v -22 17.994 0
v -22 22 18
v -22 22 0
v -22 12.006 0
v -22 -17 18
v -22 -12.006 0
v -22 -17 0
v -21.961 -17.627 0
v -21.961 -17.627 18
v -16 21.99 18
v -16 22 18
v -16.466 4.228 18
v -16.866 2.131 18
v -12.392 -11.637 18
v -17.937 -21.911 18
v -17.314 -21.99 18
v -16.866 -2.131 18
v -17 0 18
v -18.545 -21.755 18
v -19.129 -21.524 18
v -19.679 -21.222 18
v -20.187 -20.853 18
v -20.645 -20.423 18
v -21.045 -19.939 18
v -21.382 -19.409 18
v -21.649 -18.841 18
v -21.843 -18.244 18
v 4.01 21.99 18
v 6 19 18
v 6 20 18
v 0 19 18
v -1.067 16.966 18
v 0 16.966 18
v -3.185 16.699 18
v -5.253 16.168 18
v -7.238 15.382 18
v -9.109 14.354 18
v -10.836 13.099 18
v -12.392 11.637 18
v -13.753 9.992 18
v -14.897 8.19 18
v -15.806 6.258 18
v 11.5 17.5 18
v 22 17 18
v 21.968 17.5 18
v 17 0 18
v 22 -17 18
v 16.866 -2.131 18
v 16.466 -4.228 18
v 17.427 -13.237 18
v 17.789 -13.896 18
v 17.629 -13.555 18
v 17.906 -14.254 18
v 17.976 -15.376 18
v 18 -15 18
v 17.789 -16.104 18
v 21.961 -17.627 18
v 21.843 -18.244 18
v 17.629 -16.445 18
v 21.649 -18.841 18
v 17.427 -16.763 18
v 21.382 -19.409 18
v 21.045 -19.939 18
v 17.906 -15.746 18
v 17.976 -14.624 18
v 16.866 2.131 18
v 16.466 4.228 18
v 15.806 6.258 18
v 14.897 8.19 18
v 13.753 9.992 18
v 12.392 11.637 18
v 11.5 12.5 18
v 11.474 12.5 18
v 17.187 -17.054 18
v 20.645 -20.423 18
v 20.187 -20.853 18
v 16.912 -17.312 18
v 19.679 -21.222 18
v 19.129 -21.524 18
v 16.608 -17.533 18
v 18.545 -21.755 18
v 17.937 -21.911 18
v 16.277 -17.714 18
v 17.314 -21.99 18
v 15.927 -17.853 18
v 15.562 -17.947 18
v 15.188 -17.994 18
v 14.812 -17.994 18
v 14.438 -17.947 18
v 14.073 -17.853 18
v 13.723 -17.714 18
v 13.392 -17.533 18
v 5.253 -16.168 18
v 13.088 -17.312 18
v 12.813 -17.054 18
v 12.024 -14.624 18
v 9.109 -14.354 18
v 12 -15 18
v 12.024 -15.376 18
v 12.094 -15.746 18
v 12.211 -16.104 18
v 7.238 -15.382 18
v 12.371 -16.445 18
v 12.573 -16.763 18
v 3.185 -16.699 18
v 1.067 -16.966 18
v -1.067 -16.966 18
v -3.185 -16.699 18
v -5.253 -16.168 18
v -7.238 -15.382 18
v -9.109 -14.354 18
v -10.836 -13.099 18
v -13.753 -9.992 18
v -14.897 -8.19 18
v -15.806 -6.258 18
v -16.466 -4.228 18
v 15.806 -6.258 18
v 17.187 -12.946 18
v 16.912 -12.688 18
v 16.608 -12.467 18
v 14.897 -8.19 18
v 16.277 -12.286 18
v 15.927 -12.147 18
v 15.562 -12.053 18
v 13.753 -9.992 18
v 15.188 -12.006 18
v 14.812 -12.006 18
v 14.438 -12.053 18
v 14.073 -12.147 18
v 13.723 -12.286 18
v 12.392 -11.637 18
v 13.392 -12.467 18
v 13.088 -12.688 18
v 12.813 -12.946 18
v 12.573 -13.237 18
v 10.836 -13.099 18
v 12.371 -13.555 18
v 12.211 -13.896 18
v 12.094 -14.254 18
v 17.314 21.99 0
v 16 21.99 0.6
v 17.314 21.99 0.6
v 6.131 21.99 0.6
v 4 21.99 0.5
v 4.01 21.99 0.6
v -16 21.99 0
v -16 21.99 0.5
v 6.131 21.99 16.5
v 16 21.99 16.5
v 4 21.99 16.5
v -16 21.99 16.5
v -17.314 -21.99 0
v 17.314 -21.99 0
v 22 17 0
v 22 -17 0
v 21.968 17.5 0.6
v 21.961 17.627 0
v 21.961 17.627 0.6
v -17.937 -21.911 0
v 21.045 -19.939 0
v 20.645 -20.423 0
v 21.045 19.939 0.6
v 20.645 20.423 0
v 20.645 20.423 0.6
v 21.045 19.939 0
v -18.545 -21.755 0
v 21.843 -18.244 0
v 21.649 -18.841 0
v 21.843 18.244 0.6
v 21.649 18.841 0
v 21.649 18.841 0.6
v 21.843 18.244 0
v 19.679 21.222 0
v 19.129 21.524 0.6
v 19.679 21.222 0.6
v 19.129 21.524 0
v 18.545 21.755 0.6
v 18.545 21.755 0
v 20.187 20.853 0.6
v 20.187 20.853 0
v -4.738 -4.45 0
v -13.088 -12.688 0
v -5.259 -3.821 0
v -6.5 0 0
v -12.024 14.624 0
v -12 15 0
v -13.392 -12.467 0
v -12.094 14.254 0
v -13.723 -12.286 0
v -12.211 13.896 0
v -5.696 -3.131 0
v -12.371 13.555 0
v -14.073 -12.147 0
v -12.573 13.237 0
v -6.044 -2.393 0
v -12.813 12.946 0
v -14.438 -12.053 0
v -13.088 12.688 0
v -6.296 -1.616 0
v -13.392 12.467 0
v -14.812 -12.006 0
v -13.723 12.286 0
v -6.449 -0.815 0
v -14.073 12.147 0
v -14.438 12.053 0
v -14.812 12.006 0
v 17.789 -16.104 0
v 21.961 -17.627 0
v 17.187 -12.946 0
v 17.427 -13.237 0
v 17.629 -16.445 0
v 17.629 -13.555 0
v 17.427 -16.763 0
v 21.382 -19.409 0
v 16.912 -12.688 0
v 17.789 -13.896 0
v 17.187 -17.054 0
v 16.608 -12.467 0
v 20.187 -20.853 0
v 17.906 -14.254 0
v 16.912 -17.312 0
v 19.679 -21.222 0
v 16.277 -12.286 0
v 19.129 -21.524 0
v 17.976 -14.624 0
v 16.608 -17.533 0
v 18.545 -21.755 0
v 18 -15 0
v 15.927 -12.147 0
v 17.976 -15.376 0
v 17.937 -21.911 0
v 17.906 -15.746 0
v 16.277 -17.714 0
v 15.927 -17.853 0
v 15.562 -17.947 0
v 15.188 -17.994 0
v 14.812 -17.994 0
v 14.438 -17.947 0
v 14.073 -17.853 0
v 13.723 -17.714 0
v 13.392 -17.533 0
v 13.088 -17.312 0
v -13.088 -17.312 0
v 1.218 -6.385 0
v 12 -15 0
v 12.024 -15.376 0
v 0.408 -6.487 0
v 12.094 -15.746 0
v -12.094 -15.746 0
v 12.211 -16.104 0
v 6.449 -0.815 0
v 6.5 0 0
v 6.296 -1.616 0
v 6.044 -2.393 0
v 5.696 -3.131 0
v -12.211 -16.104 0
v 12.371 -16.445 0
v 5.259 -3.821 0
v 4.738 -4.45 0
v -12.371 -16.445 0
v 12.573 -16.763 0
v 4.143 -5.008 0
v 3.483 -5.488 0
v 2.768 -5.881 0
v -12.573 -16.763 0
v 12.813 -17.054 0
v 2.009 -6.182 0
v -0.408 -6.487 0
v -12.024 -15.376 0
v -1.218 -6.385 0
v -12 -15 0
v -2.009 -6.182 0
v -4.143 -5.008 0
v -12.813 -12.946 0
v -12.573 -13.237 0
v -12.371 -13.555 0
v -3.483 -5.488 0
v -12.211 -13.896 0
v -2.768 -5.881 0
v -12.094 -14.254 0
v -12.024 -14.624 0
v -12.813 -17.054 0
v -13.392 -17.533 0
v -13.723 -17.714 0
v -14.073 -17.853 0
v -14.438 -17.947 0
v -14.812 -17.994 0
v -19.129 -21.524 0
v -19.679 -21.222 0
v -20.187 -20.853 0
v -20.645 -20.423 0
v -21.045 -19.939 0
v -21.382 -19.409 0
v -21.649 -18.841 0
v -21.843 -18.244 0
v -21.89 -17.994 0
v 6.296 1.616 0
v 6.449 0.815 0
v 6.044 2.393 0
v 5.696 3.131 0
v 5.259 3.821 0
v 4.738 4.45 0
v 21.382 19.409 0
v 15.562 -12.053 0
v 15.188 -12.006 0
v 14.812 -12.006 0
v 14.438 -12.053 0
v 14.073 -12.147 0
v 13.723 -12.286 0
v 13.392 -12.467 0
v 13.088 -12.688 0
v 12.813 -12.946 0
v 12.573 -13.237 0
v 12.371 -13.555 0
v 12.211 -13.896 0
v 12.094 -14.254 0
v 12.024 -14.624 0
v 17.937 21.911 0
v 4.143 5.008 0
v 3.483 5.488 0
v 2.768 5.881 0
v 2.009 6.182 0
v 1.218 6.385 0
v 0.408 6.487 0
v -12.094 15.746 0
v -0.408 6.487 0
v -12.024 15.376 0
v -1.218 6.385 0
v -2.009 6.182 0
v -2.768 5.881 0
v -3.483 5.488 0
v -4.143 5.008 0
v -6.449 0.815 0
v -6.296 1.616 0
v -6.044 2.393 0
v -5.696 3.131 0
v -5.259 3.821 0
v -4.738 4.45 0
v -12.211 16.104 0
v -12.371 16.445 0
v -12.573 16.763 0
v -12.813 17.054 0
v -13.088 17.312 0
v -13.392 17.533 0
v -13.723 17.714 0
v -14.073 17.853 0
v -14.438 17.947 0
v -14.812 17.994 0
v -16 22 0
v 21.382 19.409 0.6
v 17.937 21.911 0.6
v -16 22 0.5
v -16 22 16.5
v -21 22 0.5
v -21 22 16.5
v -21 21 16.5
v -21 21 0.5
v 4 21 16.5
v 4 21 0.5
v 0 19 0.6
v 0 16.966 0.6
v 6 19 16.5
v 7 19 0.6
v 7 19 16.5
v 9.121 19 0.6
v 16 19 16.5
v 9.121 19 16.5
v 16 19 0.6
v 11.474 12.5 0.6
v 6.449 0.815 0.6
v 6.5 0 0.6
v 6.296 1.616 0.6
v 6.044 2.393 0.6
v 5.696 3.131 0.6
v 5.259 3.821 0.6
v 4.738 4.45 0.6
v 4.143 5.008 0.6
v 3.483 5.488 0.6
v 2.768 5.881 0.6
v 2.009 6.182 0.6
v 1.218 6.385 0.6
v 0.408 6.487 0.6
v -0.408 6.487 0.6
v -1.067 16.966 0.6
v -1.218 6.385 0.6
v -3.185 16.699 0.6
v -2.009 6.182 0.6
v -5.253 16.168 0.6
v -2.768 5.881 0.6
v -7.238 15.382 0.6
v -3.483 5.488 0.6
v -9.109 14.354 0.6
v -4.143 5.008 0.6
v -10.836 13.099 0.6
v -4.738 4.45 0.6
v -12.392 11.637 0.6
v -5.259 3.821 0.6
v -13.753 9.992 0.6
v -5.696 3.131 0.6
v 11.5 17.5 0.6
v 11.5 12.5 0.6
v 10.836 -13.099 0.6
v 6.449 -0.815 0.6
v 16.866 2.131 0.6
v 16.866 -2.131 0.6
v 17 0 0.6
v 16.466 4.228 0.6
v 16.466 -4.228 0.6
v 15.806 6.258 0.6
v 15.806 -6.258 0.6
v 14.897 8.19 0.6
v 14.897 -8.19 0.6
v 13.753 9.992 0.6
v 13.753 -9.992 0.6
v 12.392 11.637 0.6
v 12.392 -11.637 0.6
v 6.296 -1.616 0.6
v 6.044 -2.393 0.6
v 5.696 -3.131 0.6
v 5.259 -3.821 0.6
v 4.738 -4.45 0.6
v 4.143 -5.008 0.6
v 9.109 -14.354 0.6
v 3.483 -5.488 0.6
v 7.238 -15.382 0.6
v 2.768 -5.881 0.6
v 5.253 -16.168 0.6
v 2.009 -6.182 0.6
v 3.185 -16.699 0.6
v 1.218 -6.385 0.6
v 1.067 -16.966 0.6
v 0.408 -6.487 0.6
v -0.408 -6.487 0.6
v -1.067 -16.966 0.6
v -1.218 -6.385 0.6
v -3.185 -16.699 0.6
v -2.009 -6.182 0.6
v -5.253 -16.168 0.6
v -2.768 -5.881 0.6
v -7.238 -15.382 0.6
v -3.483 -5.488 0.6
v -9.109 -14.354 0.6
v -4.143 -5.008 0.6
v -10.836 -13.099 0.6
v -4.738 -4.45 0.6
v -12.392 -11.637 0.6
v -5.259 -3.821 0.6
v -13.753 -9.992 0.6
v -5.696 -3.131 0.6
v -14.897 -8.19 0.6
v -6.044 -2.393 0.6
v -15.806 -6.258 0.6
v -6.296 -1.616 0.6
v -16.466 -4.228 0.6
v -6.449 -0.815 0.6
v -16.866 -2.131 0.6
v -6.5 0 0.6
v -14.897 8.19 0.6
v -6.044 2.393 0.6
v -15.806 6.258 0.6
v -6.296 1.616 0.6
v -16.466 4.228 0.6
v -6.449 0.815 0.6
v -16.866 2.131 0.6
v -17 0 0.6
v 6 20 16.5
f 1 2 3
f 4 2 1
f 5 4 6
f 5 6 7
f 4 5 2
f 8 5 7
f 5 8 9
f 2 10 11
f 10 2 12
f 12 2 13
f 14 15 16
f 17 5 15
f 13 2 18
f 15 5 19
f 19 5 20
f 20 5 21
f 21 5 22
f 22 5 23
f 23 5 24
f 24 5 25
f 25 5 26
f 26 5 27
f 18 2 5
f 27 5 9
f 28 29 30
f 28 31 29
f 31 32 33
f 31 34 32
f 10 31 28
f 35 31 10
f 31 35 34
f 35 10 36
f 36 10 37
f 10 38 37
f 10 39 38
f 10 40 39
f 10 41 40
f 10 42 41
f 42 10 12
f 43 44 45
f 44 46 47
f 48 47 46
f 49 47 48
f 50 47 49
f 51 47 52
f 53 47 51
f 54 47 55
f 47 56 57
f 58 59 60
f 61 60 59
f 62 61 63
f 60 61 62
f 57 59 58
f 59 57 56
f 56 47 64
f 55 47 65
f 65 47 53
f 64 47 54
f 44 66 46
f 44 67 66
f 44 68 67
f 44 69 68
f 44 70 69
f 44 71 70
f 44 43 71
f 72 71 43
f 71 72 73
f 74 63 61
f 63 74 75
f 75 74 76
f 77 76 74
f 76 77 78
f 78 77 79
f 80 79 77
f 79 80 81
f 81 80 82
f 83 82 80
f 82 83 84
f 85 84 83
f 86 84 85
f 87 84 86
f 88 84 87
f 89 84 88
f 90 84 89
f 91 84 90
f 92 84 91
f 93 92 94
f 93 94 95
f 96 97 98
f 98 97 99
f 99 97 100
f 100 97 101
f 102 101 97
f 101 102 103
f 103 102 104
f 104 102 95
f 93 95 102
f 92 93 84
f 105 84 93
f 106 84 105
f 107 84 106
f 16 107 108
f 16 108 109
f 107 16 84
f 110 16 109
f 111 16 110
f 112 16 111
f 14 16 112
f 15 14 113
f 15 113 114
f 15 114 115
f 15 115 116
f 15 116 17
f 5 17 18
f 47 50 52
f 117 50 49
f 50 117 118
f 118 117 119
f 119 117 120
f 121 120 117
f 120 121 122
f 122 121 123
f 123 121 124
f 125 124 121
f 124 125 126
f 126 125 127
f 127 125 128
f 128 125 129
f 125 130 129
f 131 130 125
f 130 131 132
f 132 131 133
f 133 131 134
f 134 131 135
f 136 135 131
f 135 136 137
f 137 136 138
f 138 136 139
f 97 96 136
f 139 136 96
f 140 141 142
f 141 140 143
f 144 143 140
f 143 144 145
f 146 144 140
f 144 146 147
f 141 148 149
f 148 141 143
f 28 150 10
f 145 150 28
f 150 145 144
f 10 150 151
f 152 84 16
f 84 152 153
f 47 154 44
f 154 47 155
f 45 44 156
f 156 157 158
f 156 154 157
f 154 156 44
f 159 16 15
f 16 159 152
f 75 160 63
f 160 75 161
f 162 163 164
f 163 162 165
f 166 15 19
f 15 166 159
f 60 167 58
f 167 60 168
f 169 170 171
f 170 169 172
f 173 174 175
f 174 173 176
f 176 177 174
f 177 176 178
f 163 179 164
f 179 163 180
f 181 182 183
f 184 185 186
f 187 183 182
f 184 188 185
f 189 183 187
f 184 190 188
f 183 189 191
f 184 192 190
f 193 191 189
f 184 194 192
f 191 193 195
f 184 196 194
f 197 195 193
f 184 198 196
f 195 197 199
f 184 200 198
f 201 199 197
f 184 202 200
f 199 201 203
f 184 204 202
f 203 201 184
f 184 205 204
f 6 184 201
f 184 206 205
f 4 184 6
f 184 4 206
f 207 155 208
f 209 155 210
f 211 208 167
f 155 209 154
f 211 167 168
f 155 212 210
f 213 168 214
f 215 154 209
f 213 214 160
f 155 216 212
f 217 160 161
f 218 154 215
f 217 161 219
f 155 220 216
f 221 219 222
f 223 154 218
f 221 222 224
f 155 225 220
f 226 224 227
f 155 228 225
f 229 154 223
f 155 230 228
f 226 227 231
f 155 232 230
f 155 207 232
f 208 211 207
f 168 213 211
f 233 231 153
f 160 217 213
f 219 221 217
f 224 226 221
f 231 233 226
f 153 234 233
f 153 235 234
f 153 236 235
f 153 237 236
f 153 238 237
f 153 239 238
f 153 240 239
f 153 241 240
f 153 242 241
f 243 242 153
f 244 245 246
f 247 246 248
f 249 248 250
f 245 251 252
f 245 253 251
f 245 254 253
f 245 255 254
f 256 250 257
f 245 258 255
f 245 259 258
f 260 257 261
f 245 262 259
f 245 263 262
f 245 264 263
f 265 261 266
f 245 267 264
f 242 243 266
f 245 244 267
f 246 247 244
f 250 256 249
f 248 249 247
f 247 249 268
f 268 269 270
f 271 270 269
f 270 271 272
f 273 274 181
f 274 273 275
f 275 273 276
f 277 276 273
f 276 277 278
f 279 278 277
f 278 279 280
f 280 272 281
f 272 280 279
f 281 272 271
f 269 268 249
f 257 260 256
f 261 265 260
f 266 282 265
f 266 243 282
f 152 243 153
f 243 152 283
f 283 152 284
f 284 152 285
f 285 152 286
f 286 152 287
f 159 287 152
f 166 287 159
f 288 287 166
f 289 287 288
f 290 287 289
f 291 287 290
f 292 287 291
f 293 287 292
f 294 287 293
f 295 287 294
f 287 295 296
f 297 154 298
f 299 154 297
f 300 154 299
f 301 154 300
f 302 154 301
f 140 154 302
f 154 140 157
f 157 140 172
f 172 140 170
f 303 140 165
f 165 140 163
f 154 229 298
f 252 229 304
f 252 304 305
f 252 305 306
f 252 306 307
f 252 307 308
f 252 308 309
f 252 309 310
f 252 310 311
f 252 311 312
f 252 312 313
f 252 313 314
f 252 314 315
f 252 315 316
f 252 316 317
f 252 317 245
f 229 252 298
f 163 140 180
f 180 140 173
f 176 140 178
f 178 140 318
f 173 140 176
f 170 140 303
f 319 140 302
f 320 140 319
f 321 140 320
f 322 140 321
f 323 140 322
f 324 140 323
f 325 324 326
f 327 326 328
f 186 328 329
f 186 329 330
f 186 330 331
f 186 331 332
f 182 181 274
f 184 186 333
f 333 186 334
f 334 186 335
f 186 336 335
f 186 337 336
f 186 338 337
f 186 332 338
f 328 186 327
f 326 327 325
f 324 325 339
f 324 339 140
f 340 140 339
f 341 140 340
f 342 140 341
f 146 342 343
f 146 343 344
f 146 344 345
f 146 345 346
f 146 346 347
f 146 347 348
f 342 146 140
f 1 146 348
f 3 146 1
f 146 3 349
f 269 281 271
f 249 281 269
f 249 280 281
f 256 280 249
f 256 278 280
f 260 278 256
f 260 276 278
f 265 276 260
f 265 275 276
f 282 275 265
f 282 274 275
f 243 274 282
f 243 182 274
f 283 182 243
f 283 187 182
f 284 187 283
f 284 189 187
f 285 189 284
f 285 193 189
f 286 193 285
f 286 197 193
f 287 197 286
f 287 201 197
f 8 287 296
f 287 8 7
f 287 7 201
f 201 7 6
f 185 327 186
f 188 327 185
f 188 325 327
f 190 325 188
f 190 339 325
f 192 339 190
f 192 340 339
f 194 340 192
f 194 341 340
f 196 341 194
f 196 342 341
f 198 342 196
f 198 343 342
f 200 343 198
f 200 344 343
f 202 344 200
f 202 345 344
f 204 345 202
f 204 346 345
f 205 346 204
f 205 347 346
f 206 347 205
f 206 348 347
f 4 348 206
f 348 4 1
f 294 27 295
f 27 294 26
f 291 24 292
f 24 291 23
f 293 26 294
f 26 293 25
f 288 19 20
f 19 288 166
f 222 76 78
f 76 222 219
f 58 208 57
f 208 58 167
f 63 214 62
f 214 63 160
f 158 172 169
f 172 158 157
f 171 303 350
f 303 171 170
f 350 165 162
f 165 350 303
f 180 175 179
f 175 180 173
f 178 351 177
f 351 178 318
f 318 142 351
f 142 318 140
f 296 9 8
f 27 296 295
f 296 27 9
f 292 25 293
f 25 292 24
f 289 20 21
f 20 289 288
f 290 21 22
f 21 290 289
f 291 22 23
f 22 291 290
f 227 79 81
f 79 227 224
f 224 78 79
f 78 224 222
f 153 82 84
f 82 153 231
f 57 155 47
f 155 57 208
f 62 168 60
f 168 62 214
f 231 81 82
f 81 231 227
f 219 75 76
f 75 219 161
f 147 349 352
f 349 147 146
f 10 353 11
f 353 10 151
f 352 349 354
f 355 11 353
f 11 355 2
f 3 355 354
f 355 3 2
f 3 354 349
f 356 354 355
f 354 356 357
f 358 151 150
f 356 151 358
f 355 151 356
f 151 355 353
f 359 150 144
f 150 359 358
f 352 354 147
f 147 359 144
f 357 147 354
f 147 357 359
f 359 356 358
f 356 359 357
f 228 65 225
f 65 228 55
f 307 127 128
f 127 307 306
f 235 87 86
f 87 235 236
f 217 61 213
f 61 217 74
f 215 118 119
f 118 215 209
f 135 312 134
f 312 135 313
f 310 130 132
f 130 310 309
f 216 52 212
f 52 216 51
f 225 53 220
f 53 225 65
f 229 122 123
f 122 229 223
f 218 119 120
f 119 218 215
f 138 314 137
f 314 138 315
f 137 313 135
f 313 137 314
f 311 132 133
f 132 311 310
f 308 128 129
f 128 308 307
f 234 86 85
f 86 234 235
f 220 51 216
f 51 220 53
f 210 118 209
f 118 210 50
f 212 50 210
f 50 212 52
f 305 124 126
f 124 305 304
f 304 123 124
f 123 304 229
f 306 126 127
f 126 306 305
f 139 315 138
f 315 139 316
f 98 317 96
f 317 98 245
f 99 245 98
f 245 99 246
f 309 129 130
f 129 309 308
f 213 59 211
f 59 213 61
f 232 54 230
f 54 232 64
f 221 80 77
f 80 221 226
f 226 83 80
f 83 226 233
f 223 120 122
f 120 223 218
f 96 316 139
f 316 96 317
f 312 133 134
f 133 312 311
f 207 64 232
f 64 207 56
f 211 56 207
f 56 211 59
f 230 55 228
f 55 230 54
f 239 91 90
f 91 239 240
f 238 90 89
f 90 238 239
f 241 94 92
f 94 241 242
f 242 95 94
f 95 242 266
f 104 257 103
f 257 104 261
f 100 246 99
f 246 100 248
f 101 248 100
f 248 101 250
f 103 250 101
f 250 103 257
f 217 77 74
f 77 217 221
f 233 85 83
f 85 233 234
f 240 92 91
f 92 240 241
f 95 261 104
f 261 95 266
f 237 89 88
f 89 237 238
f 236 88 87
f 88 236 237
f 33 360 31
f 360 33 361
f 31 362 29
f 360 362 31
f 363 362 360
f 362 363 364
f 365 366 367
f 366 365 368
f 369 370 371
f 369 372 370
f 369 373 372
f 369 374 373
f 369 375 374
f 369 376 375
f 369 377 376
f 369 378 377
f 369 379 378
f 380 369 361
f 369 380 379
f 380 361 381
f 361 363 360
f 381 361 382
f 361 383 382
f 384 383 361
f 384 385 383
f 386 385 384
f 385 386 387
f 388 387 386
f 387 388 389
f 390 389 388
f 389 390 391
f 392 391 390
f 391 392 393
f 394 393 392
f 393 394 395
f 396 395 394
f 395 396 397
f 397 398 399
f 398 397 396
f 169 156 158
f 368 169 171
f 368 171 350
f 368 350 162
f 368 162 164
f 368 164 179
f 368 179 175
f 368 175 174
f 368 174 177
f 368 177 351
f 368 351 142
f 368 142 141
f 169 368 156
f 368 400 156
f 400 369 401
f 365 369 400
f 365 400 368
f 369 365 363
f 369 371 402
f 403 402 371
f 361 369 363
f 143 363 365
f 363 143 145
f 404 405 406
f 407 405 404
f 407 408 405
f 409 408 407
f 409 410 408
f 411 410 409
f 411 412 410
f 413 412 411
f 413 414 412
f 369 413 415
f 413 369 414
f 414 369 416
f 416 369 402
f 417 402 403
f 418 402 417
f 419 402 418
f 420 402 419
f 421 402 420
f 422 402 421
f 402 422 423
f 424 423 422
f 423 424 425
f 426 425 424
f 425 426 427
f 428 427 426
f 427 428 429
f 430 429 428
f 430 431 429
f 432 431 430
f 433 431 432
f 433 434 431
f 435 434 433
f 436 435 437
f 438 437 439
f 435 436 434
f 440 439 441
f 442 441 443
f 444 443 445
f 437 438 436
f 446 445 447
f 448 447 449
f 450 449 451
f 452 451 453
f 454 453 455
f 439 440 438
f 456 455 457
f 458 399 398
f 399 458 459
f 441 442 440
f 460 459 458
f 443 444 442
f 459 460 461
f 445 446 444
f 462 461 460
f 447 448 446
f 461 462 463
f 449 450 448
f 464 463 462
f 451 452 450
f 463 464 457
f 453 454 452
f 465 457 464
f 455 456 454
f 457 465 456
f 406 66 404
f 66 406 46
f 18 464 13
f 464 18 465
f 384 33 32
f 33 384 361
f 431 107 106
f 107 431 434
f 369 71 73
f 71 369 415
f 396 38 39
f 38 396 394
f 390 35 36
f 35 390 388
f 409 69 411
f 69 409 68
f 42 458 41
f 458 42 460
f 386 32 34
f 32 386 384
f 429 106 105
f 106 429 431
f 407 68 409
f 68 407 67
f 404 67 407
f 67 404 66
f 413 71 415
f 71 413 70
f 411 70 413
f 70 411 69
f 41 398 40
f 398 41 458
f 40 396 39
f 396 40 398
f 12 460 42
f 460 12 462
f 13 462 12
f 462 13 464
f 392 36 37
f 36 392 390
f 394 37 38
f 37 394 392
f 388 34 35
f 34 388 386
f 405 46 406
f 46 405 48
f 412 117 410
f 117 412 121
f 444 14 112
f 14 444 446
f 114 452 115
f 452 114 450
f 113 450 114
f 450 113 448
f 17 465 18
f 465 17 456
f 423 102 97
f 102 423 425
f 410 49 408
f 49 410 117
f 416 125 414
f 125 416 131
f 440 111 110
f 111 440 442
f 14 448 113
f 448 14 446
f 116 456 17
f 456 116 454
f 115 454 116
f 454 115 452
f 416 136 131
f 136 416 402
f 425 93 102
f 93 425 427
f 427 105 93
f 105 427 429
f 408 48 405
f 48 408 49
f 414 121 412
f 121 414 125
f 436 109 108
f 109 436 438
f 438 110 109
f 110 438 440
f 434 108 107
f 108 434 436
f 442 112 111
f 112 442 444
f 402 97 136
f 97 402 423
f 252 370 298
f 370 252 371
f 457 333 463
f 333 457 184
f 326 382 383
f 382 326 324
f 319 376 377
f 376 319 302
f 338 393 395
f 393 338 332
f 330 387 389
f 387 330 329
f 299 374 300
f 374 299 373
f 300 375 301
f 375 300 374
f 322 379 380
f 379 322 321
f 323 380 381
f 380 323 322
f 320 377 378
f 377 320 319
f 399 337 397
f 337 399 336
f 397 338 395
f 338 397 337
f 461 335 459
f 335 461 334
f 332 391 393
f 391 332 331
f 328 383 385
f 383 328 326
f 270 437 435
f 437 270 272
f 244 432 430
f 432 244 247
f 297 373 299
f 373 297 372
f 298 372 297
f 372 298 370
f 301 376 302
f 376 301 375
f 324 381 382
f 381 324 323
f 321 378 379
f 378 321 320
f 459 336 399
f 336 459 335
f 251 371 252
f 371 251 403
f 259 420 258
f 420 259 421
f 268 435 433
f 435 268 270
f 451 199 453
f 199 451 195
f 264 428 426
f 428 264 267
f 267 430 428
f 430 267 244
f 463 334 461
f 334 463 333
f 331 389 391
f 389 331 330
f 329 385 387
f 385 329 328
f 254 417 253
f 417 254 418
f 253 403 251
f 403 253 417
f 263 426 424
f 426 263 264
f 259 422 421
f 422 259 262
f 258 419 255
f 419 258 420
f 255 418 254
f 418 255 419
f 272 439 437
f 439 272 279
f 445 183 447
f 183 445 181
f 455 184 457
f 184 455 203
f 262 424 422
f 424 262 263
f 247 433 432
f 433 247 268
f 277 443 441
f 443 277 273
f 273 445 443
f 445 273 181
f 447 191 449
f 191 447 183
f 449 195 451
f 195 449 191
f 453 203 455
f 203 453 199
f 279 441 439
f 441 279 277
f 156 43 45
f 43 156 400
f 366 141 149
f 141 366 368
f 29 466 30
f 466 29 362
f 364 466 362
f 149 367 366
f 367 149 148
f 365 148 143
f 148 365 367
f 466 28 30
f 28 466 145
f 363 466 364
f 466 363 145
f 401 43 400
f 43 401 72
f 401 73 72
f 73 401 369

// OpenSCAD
$fn = 50;


difference() {
	union() {
		hull() {
			translate(v = [-17.0000000000, 17.0000000000, 0]) {
				cylinder(h = 18, r = 5);
			}
			translate(v = [17.0000000000, 17.0000000000, 0]) {
				cylinder(h = 18, r = 5);
			}
			translate(v = [-17.0000000000, -17.0000000000, 0]) {
				cylinder(h = 18, r = 5);
			}
			translate(v = [17.0000000000, -17.0000000000, 0]) {
				cylinder(h = 18, r = 5);
			}
		}
		translate(v = [-22.0000000000, 16.0000000000, 0]) {
			cube(size = [6, 6, 18]);
		}
	}
	union() {
		translate(v = [-22.5000000000, -15.0000000000, -250.0000000000]) {
			rotate(a = [0, 0, 0]) {
				difference() {
					union() {
						hull() {
							translate(v = [7.5000000000, 0, 0]) {
								cylinder(h = 250, r = 3.0000000000, r1 = 3.0000000000, r2 = 3.0000000000);
							}
							translate(v = [-7.5000000000, 0, 0]) {
								cylinder(h = 250, r = 3.0000000000, r1 = 3.0000000000, r2 = 3.0000000000);
							}
						}
					}
					union();
				}
			}
		}
		translate(v = [-22.5000000000, 15.0000000000, -250.0000000000]) {
			rotate(a = [0, 0, 0]) {
				difference() {
					union() {
						hull() {
							translate(v = [7.5000000000, 0, 0]) {
								cylinder(h = 250, r = 3.0000000000, r1 = 3.0000000000, r2 = 3.0000000000);
							}
							translate(v = [-7.5000000000, 0, 0]) {
								cylinder(h = 250, r = 3.0000000000, r1 = 3.0000000000, r2 = 3.0000000000);
							}
						}
					}
					union();
				}
			}
		}
		translate(v = [-21.0000000000, 21.0000000000, 0.5000000000]) {
			cube(size = [25, 1, 16]);
		}
		translate(v = [15.0000000000, -15.0000000000, -50.0000000000]) {
			cylinder(h = 100, r = 3.0000000000);
		}
		translate(v = [0.0000000000, 11.0000000000, 0.6000000000]) {
			cube(size = [11, 8, 20.4000000000]);
		}
		translate(v = [0, 0, 0.6000000000]) {
			cylinder(h = 20.4000000000, r = 17.0000000000);
		}
		translate(v = [0, 0, -9.0000000000]) {
			cylinder(h = 18, r = 6.5000000000);
		}
		translate(v = [0.0000000000, 17.5000000000, 0.6000000000]) {
			cube(size = [22.0000000000, 1.5000000000, 20.4000000000]);
		}
		translate(v = [16.0000000000, 17.5000000000, 0.6000000000]) {
			cube(size = [6, 4.5000000000, 20.4000000000]);
		}
		translate(v = [6.0000000000, 17.5000000000, 16.5000000000]) {
			cube(size = [16, 4.5000000000, 1.5000000000]);
		}
		translate(v = [3.2500000000, 22.7500000000, 0.6000000000]) {
			rotate(a = [0, 0, -45]) {
				cube(size = [7.5000000000, 1.5000000000, 20.4000000000]);
			}
		}
		translate(v = [2.5000000000, 12.5000000000, 0.6000000000]) {
			cube(size = [9.0000000000, 5, 17.4000000000]);
		}
	}
}
